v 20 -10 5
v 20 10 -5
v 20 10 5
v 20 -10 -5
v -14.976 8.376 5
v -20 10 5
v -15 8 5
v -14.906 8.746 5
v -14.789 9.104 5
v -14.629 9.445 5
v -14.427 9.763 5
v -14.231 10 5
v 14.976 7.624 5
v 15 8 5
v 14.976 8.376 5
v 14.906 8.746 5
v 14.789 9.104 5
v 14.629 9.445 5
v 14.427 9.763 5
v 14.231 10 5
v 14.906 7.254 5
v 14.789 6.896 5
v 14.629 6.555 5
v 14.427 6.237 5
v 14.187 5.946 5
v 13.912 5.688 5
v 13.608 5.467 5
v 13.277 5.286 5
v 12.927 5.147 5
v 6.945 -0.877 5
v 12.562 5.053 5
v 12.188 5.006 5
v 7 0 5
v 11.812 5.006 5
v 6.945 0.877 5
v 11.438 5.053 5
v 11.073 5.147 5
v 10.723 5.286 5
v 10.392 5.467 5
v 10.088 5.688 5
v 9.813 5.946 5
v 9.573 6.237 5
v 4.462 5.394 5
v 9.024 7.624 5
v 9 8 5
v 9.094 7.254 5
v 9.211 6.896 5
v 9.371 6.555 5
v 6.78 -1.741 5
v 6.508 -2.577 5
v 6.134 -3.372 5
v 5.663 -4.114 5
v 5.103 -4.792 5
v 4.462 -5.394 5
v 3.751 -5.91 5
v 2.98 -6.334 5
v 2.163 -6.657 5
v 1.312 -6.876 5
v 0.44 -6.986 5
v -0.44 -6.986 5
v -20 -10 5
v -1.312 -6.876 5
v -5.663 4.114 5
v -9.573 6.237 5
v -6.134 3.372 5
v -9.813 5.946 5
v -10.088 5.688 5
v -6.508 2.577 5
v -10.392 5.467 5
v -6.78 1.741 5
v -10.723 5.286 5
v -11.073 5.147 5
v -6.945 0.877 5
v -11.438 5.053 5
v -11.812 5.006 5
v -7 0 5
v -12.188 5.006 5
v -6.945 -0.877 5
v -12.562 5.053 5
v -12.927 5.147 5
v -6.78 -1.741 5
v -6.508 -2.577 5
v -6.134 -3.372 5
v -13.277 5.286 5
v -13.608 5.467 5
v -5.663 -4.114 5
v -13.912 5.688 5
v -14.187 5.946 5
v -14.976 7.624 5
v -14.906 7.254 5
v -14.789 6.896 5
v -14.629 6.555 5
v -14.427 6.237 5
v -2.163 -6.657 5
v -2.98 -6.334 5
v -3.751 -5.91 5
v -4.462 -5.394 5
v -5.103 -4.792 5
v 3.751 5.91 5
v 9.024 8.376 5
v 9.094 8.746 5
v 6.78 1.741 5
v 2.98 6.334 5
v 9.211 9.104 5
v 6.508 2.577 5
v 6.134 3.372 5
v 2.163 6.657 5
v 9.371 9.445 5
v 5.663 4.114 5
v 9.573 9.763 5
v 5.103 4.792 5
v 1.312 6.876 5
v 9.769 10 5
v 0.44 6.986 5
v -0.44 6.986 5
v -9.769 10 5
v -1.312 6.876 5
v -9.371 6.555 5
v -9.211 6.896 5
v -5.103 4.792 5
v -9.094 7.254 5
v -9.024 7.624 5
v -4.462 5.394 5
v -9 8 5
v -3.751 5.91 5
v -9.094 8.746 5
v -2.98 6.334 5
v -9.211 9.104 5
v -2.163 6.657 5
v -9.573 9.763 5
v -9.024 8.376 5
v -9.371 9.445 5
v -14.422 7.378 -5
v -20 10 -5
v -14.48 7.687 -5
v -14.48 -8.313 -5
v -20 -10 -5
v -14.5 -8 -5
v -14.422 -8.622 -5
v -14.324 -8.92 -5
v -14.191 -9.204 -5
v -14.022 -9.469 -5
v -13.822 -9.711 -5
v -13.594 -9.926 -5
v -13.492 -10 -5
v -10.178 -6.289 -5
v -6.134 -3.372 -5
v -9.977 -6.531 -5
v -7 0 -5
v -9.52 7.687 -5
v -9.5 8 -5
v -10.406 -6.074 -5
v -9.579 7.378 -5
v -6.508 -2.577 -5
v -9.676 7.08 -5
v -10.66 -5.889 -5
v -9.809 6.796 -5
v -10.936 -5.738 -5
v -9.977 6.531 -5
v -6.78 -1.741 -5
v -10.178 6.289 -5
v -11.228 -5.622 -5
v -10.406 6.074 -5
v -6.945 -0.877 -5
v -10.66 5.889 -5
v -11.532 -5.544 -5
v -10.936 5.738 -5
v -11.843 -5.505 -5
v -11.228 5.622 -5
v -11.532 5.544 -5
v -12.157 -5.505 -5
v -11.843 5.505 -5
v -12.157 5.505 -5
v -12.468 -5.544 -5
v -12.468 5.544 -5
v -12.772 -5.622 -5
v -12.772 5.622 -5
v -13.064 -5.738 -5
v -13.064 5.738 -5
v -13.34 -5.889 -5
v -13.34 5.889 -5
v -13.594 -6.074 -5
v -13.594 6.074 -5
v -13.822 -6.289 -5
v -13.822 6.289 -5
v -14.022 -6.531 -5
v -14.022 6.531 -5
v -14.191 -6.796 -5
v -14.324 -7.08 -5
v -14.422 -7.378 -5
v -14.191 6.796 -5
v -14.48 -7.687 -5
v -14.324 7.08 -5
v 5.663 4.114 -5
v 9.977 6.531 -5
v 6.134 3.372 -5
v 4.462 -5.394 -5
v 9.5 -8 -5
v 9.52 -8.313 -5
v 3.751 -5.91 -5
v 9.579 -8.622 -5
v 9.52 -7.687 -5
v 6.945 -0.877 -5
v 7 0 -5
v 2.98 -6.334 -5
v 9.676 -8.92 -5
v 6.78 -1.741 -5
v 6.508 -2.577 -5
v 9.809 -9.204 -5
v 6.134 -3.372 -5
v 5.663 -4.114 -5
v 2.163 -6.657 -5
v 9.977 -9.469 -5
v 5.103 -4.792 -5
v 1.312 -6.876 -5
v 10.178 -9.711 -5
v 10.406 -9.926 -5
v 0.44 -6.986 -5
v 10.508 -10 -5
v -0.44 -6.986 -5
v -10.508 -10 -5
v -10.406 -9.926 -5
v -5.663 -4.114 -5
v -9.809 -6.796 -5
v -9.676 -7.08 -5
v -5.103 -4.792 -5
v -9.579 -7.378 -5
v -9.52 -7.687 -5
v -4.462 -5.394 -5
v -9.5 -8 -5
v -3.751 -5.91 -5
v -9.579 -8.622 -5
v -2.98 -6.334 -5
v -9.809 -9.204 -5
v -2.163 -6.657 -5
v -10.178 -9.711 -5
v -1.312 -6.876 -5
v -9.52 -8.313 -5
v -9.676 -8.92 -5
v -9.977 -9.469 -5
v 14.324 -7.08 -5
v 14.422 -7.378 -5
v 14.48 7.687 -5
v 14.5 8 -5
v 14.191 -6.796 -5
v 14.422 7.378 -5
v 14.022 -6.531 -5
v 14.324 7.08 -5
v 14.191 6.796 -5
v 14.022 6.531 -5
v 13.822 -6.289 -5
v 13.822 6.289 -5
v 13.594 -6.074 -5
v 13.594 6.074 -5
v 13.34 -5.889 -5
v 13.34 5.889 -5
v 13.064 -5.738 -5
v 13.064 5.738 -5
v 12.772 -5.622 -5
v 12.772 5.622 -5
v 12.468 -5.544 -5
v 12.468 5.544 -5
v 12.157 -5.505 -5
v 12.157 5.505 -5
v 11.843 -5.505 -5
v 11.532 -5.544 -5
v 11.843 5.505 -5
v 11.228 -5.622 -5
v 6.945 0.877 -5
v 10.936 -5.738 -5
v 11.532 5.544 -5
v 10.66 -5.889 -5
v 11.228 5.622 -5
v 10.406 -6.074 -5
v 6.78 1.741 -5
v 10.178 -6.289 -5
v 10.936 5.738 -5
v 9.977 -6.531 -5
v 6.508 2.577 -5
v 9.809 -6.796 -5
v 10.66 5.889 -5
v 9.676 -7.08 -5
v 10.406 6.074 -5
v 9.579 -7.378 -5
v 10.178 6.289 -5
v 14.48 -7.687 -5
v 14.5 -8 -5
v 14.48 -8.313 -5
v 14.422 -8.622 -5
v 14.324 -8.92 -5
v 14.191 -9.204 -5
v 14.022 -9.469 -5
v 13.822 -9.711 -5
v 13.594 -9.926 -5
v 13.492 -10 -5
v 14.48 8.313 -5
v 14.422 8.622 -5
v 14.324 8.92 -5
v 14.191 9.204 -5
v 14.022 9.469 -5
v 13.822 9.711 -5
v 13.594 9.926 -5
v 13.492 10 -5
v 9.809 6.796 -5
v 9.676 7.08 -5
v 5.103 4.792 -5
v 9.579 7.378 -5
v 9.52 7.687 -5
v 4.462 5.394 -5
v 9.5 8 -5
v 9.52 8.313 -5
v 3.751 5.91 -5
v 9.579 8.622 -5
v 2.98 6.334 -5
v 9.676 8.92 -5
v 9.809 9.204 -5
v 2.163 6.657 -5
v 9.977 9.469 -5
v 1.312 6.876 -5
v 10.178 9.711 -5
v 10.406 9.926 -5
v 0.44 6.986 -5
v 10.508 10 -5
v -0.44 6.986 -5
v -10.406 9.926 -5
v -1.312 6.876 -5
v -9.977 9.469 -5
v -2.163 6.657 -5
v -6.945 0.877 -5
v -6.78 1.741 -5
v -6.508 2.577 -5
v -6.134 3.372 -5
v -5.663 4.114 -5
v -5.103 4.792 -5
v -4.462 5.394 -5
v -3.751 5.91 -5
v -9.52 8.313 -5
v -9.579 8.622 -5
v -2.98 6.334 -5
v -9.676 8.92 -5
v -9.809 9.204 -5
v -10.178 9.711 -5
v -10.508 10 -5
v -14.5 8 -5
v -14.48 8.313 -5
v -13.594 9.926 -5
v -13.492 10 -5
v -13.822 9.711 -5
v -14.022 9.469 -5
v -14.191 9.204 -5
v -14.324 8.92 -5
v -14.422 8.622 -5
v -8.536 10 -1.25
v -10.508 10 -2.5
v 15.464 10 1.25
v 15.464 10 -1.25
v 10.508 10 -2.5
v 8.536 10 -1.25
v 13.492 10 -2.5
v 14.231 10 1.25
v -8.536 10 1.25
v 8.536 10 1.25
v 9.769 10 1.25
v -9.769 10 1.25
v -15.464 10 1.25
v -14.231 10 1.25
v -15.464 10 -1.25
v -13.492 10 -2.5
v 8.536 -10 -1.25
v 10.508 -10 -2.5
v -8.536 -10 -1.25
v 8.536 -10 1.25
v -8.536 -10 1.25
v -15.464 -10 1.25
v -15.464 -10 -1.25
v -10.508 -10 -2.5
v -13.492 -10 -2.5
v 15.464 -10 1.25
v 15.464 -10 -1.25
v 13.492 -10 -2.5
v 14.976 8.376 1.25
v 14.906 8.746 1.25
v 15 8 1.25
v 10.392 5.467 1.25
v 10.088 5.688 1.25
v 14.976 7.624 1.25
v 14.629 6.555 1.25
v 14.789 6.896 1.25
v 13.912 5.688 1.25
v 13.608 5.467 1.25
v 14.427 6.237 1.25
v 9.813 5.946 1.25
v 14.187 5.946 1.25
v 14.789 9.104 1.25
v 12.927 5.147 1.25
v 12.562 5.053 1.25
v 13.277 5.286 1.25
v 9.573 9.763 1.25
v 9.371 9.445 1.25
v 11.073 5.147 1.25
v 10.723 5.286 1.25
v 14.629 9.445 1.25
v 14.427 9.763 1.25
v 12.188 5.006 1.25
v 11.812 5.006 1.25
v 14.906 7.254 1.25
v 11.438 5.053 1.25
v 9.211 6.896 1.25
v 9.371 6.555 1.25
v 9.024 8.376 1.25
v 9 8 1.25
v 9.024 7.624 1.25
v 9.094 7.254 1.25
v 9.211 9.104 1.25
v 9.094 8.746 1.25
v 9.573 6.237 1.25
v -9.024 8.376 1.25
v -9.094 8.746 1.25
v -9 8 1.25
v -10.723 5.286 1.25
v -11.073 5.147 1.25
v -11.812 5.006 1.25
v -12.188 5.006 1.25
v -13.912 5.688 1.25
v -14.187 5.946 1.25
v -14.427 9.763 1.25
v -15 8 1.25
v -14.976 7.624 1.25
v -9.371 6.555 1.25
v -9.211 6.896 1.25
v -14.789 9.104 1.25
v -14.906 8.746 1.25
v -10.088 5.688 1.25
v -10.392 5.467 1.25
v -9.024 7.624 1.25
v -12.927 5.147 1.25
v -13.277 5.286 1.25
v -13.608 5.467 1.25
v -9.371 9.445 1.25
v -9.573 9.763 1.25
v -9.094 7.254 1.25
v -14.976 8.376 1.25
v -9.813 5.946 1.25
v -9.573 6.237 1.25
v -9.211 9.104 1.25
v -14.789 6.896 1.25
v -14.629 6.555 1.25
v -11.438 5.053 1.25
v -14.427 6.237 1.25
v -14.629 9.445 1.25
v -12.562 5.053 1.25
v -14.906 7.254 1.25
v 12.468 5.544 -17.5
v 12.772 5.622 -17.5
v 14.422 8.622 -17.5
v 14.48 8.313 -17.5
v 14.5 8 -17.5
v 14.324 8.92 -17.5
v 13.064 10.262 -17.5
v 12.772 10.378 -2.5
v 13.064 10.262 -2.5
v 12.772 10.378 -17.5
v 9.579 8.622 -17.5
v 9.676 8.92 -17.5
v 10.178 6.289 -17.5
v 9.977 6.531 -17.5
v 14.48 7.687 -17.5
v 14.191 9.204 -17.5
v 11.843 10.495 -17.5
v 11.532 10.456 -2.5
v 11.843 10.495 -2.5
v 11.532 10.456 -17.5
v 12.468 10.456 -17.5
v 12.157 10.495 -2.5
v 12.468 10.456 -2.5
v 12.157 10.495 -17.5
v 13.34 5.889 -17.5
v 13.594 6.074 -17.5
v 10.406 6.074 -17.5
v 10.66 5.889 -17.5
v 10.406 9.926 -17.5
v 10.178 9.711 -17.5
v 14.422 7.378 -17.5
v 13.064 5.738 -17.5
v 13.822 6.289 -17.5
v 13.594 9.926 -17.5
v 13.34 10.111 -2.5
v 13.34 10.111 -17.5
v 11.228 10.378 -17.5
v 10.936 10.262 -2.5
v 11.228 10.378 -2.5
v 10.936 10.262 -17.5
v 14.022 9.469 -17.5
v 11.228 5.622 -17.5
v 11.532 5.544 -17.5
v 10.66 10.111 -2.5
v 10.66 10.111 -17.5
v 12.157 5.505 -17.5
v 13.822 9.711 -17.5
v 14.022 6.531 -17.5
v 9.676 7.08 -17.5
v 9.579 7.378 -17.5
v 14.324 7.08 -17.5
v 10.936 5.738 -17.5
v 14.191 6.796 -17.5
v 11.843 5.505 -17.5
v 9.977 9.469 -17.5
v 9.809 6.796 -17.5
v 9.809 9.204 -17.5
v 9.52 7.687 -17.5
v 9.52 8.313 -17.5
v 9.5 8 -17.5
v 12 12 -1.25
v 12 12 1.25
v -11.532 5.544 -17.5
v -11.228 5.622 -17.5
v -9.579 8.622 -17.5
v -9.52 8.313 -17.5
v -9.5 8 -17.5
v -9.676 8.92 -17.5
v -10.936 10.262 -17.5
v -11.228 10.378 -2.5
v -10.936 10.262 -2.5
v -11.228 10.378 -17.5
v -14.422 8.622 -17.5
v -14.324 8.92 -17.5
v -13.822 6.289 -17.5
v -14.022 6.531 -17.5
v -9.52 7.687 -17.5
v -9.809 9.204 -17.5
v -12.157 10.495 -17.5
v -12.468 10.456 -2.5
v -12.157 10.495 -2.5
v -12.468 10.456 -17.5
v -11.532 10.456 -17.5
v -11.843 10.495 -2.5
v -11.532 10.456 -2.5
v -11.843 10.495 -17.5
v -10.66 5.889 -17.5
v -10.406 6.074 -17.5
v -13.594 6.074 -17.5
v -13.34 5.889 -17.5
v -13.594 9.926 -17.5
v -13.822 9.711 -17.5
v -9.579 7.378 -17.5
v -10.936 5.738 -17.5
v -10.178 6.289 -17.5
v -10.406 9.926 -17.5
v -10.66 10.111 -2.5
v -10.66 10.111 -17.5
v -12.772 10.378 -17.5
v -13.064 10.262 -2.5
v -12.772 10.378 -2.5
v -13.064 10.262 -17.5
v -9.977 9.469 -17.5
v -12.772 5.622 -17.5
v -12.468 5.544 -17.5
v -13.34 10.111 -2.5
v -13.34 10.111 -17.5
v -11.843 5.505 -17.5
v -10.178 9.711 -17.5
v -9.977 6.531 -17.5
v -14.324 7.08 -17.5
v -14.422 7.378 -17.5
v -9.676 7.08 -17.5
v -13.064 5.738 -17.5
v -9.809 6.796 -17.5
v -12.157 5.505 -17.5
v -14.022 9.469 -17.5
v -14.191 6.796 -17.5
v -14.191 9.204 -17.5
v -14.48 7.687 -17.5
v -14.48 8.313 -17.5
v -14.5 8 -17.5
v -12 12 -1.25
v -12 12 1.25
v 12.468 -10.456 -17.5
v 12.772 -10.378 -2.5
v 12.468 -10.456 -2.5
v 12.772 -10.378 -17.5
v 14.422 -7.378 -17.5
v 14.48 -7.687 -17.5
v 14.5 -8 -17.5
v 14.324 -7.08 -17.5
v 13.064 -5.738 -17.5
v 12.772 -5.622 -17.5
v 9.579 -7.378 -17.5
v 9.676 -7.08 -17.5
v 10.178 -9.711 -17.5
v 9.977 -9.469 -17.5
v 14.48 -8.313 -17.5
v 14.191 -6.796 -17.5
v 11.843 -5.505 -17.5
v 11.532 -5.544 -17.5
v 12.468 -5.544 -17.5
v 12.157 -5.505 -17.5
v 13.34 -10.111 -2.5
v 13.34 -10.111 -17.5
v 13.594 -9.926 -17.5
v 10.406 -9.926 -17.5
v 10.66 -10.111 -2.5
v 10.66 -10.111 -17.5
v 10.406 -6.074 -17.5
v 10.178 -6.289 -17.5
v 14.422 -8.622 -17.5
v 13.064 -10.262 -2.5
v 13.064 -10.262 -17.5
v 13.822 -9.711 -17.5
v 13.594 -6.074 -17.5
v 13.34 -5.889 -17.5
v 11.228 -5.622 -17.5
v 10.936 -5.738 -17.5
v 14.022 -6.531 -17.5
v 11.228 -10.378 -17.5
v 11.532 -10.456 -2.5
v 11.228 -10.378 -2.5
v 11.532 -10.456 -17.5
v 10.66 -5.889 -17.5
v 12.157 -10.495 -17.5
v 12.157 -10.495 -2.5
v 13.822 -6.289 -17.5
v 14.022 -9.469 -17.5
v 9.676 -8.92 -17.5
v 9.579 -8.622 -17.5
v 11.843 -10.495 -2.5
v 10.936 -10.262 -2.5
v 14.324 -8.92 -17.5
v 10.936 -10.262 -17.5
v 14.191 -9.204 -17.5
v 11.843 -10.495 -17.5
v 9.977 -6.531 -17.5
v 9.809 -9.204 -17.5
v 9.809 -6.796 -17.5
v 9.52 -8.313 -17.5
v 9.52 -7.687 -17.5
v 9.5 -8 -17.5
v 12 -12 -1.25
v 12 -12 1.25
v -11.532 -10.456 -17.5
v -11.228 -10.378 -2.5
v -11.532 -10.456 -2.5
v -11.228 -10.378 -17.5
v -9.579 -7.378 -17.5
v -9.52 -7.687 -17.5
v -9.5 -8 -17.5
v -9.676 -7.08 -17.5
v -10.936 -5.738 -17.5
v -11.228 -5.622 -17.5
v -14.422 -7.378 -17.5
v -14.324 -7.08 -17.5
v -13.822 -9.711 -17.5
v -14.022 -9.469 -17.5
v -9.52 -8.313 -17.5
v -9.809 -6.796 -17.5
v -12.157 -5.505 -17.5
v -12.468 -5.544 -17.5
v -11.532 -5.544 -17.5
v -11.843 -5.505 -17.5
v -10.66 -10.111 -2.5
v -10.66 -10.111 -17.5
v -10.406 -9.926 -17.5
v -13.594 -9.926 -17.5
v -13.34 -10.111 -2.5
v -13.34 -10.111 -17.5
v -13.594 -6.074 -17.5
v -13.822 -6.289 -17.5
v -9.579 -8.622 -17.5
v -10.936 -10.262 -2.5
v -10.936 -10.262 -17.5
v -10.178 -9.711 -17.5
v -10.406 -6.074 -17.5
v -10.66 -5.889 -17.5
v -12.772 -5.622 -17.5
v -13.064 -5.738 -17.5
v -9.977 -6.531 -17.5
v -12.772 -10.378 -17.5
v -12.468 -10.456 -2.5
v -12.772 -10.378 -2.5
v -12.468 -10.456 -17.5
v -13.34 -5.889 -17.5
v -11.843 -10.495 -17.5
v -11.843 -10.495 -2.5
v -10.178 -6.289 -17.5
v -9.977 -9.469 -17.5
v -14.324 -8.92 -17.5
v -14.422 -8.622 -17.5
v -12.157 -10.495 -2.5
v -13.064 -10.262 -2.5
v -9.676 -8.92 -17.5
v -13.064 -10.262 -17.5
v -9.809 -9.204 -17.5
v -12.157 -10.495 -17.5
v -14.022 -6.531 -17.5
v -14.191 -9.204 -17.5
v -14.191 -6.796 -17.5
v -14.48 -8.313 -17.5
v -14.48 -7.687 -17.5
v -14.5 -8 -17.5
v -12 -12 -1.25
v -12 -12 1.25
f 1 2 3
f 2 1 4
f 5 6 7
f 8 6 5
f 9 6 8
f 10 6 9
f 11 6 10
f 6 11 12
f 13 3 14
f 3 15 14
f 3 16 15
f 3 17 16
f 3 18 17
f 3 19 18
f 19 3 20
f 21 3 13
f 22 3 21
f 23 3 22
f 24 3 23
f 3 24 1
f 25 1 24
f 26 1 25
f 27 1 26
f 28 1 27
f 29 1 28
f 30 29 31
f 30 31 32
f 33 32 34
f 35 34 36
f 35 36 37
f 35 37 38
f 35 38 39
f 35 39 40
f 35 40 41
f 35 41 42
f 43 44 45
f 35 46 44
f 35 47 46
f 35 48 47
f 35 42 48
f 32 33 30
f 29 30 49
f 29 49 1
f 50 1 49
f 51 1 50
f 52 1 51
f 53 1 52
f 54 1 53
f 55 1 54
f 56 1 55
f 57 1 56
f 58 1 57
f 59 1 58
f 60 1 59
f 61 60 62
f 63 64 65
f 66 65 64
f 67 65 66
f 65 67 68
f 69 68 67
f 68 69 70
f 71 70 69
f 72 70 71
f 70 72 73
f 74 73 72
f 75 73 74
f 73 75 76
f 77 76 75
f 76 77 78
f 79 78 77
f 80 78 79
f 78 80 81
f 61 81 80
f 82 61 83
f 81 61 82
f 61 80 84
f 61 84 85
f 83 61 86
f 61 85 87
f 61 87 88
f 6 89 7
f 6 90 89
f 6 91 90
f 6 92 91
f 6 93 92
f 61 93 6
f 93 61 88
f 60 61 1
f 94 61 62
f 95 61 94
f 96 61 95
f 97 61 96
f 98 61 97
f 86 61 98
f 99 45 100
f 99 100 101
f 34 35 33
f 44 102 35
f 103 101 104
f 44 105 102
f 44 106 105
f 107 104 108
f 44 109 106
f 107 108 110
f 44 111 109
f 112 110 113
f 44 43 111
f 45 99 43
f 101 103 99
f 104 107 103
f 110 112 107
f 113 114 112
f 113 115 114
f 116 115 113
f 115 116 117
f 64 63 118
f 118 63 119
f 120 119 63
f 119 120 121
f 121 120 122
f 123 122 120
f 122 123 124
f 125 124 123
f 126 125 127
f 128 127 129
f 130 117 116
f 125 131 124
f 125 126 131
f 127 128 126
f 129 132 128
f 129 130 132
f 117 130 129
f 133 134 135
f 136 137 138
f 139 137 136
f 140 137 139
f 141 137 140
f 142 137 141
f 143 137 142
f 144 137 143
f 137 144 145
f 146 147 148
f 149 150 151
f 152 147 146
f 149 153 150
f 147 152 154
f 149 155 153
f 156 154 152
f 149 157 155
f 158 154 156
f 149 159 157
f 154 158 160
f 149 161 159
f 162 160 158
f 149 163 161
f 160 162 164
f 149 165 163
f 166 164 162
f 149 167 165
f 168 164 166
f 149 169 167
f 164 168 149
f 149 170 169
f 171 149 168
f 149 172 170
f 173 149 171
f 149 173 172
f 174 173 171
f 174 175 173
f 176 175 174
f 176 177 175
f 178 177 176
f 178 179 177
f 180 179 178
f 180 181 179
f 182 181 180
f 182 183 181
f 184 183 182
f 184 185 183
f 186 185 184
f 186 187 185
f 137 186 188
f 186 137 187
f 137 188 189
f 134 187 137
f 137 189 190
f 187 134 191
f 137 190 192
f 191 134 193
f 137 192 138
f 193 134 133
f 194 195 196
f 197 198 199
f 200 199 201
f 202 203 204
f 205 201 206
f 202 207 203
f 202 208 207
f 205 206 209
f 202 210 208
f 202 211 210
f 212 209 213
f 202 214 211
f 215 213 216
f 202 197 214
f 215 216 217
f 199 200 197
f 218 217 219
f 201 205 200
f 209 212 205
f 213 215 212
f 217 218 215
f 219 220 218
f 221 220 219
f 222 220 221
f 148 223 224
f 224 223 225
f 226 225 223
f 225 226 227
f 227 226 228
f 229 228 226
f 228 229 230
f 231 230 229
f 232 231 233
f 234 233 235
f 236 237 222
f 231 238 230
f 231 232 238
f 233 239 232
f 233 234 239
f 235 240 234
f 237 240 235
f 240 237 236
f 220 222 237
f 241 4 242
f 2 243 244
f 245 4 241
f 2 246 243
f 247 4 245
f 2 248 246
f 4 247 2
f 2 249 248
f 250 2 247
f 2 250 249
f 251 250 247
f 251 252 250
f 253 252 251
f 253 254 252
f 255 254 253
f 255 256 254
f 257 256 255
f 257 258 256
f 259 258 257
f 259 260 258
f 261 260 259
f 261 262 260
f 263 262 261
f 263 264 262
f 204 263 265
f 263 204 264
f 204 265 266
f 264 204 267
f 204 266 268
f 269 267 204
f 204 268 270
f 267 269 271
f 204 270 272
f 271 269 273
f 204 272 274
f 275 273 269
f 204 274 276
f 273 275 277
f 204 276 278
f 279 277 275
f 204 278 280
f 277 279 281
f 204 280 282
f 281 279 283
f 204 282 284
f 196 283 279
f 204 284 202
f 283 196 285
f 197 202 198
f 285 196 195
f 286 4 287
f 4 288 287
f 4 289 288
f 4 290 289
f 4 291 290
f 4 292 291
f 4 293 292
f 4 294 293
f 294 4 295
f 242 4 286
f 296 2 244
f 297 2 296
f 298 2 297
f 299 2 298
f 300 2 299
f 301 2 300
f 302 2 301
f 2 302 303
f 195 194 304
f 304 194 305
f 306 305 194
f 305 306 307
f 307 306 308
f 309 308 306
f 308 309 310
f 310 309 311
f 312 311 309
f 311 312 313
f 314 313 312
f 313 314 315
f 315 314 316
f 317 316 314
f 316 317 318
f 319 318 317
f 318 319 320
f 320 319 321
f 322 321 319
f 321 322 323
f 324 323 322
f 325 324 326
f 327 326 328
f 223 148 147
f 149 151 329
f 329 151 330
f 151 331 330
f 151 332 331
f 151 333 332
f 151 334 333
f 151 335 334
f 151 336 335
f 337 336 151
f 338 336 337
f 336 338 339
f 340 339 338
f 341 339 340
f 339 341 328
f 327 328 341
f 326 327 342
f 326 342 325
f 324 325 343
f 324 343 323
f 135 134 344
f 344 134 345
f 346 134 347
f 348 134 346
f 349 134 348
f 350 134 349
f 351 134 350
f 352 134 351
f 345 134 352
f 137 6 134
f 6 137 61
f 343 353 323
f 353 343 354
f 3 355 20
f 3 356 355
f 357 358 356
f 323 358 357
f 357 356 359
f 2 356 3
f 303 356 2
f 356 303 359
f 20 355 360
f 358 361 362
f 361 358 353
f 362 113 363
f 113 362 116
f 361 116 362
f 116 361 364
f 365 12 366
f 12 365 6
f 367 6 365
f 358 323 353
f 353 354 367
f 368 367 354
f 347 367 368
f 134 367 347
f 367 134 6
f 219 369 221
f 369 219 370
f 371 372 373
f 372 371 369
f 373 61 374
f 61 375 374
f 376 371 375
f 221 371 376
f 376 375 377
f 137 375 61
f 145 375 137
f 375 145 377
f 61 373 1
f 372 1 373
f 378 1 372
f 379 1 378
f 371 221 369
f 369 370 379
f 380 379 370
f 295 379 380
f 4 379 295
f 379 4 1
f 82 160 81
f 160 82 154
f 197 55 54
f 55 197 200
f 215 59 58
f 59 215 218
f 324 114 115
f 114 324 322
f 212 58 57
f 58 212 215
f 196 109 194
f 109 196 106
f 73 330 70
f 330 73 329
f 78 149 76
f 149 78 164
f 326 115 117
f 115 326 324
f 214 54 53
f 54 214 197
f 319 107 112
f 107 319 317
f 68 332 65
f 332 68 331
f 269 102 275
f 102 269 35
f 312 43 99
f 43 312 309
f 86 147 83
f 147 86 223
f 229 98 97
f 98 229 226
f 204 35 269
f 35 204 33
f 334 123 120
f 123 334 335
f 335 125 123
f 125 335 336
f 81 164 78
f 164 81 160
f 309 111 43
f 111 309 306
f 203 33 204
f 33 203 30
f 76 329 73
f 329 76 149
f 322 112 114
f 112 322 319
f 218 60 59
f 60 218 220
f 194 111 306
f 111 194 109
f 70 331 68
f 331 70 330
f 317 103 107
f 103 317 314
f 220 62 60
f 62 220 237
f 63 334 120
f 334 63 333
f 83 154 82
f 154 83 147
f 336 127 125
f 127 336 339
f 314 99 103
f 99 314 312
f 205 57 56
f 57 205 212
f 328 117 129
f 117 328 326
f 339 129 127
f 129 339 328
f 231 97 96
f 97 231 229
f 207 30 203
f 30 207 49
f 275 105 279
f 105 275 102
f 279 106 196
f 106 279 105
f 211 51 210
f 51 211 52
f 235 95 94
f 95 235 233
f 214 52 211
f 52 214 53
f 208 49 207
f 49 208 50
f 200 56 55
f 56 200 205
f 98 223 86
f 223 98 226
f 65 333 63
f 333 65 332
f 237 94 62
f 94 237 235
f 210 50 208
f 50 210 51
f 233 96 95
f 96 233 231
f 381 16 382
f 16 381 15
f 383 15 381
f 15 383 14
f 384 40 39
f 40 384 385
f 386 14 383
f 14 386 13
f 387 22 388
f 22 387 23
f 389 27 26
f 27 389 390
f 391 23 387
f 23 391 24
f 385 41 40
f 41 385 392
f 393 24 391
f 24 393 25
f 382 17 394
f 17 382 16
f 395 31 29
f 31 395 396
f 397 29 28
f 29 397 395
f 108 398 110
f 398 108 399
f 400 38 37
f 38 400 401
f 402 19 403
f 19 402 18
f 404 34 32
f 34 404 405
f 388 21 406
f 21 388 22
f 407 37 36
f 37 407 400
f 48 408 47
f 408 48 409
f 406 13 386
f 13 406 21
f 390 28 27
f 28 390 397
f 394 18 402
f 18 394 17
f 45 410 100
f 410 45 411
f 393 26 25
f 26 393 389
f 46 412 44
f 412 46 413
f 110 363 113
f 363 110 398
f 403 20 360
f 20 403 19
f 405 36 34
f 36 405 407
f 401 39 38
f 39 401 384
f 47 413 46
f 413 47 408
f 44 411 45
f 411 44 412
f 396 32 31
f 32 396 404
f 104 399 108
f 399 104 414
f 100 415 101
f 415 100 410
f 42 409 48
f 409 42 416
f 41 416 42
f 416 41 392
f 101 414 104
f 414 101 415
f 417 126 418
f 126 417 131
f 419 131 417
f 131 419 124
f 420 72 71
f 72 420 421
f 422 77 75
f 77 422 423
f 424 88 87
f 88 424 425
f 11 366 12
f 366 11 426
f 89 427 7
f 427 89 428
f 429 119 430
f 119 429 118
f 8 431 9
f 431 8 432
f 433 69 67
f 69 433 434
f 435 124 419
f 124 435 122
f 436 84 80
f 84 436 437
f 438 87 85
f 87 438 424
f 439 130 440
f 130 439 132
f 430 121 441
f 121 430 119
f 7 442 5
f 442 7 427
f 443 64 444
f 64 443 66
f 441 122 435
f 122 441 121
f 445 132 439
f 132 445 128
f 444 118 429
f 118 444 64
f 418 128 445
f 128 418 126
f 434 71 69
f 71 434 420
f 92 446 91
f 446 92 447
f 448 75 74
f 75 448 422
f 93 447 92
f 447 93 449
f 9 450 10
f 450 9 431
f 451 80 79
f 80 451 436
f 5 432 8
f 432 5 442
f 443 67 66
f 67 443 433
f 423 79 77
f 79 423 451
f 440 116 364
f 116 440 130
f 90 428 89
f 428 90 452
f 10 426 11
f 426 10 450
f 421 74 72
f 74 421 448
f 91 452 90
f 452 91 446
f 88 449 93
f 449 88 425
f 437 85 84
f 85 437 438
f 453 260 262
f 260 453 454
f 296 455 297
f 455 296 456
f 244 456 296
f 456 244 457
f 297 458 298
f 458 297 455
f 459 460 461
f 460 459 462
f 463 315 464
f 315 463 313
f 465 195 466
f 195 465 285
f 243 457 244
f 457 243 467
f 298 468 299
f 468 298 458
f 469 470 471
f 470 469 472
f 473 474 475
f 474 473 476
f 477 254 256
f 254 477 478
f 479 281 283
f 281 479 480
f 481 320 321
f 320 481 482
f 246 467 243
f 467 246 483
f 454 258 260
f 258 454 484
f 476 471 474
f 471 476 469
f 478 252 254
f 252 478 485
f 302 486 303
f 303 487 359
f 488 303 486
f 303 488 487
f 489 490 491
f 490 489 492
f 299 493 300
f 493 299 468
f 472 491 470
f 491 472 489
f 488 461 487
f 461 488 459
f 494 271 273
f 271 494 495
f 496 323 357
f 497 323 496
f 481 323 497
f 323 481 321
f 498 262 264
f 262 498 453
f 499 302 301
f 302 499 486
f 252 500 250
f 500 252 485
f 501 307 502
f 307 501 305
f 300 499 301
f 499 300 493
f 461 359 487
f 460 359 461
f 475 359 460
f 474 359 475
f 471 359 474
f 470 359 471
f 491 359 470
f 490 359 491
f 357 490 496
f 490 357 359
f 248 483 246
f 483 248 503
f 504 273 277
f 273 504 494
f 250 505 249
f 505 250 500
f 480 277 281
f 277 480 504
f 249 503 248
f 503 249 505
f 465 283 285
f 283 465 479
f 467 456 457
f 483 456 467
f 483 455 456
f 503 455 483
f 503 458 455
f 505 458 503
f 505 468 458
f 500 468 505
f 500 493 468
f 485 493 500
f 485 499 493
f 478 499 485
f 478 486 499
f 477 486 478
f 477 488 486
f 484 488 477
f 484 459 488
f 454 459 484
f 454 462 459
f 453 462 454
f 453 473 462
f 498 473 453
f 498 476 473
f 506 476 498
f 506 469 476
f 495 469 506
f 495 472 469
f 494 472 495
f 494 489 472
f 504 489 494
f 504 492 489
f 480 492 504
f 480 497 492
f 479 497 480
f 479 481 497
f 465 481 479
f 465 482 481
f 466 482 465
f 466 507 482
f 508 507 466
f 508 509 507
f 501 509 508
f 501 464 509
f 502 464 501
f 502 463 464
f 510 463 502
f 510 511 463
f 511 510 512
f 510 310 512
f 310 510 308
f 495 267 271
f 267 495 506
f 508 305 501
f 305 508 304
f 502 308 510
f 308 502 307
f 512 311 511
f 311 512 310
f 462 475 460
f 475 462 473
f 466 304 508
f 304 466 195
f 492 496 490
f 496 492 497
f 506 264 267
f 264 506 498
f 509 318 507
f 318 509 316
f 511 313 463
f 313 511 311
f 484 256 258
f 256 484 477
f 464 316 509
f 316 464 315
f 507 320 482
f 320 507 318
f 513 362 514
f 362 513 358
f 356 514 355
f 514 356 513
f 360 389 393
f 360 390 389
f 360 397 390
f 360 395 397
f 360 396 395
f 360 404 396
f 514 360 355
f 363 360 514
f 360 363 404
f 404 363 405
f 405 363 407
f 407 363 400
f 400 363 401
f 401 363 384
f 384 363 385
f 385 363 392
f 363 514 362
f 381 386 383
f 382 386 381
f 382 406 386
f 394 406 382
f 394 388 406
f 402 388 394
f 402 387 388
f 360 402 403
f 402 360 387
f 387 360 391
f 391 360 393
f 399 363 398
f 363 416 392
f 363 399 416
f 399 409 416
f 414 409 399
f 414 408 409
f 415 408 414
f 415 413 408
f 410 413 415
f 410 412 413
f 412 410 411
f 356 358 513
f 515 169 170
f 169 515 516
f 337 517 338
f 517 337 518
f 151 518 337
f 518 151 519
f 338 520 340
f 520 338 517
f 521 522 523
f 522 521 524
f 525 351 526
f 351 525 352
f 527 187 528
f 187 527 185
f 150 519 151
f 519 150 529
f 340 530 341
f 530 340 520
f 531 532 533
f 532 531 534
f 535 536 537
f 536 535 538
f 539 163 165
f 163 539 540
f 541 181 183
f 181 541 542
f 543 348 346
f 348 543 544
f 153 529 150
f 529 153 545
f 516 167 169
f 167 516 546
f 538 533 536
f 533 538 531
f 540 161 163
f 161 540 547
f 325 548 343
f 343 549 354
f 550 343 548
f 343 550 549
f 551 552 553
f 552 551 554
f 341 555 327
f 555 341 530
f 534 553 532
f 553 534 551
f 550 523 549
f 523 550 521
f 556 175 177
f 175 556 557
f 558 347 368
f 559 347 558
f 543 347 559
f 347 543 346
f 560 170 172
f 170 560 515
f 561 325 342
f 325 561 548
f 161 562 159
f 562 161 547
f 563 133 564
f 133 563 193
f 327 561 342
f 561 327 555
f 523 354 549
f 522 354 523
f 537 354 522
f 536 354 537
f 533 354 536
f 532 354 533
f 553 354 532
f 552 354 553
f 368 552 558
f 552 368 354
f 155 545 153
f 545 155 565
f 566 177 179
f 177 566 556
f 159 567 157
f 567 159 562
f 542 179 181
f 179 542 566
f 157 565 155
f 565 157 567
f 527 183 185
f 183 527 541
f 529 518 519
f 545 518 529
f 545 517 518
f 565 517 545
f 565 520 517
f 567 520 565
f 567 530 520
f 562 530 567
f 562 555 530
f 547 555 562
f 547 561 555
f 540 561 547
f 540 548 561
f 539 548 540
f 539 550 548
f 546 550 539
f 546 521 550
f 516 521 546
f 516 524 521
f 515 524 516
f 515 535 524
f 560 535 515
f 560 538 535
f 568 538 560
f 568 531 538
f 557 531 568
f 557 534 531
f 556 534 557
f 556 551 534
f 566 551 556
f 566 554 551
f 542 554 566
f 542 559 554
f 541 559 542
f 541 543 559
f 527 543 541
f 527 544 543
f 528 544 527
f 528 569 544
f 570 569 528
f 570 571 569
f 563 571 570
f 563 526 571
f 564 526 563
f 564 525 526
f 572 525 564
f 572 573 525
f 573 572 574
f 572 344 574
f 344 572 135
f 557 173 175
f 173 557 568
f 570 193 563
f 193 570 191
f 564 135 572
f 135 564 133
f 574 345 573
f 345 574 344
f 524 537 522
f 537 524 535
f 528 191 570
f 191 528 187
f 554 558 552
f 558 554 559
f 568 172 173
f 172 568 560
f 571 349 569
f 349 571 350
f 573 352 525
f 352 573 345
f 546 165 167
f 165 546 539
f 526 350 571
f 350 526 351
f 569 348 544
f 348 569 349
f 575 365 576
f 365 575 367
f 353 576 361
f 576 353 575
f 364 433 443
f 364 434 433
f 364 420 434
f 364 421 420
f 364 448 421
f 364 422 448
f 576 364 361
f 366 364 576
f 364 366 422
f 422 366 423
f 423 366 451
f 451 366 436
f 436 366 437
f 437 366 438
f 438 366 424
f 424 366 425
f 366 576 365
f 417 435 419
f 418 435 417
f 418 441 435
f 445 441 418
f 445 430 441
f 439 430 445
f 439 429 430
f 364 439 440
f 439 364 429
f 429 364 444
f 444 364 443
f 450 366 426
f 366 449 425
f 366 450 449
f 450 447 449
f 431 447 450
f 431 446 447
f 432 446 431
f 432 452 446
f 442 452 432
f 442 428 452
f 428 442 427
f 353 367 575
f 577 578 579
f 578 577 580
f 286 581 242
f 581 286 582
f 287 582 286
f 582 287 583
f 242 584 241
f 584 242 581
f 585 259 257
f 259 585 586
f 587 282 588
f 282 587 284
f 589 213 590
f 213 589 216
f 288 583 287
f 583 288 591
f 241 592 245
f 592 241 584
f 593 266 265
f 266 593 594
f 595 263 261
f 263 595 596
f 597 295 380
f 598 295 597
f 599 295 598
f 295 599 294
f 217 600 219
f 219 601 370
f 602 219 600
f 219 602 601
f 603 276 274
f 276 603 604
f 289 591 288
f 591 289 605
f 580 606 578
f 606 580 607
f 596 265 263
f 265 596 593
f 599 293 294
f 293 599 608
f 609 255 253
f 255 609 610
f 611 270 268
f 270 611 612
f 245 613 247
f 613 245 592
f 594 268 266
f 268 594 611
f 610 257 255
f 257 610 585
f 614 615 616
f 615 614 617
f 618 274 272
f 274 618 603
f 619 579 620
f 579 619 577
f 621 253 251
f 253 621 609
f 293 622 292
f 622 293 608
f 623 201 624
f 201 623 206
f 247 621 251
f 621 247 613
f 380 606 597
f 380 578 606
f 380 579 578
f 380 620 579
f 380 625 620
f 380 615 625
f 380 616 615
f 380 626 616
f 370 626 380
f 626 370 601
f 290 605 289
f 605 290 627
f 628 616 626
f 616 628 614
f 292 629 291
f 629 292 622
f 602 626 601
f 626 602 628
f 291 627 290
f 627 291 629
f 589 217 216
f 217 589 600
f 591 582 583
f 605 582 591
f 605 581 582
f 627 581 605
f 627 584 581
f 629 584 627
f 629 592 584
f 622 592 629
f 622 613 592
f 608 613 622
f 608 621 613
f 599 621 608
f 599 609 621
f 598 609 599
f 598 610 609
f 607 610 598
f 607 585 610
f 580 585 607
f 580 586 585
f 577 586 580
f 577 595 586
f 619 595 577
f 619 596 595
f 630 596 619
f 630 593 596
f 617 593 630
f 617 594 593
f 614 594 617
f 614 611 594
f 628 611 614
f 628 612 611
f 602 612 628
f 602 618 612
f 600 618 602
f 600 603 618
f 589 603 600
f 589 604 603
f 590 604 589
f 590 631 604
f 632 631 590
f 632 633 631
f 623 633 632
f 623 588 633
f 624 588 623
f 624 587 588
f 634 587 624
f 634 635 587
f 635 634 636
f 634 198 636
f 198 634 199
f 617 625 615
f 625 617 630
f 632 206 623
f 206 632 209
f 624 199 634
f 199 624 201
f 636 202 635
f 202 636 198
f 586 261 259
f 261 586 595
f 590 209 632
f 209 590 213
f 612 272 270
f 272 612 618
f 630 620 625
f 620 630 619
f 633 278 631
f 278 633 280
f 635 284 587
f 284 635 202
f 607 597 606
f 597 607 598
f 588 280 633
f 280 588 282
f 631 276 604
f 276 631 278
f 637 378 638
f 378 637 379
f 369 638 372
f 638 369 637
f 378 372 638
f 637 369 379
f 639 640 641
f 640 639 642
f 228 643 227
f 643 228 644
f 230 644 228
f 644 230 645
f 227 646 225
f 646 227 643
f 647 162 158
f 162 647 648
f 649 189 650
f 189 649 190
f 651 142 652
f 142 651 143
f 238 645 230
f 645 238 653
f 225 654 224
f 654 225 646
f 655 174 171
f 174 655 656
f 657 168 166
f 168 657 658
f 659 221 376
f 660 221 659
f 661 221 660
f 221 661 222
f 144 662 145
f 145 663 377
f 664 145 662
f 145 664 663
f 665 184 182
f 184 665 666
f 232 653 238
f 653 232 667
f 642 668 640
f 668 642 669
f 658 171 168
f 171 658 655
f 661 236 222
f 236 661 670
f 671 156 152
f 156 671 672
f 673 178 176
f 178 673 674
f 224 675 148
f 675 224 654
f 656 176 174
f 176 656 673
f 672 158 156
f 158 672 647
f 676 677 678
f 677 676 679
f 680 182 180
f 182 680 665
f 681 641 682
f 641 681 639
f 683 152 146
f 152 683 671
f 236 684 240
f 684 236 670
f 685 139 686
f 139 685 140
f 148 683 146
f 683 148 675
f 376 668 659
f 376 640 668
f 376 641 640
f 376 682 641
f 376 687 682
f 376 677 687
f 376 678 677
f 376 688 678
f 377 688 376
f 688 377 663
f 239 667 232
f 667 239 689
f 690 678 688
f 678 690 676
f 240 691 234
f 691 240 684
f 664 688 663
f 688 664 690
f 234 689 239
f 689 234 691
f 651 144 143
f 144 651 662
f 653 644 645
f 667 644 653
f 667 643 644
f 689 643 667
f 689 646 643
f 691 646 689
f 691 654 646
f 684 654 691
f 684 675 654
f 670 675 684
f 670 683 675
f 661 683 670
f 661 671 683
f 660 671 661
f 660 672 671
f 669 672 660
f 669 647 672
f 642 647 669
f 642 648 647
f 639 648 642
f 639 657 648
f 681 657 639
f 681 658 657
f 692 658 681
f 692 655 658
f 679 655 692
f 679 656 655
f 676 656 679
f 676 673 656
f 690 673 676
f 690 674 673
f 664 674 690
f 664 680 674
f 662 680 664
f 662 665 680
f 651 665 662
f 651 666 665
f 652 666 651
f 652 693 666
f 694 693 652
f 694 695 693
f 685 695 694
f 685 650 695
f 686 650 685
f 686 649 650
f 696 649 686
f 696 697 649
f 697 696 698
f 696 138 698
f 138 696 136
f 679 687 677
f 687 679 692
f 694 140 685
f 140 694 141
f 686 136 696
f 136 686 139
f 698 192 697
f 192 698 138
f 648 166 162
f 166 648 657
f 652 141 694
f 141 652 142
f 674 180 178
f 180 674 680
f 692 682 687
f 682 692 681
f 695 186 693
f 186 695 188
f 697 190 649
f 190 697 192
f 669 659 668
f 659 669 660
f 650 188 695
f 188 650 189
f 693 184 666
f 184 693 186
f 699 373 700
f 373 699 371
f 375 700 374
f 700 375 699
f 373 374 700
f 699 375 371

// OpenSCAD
// Base block with refined cut-outs and enlarged holes
module base_block() {
    difference() {
        // Main block
        cube([40, 20, 10], center = true);
        
        // Larger central cut-out with smoother edges
        translate([0, 0, 5])
            cylinder(r = 7, h = 20, center = true, $fn = 50);

        // Enlarged and realigned side holes
        translate([12, 8, 5])
            cylinder(r = 3, h = 12, center = true, $fn = 50);
        translate([-12, 8, 5])
            cylinder(r = 3, h = 12, center = true, $fn = 50);
    }
}

// Locking fasteners with refined dimensions and hexagonal head
module locking_fastener() {
    union() {
        // Thickened fastener body
        translate([0, 0, -5])
            cylinder(r = 2.5, h = 15, center = true, $fn = 50);

        // Sharpened hexagonal head
        translate([0, 0, 5])
            rotate([0, 0, 30])
            cylinder(r = 4, h = 2.5, center = true, $fn = 6);
    }
}

// Assembling the components
module assembly() {
    base_block();

    // Adjusted positioning and alignment of fasteners
    translate([12, 8, -5]) locking_fastener();
    translate([-12, 8, -5]) locking_fastener();
    translate([12, -8, -5]) locking_fastener();
    translate([-12, -8, -5]) locking_fastener();
}

assembly();
